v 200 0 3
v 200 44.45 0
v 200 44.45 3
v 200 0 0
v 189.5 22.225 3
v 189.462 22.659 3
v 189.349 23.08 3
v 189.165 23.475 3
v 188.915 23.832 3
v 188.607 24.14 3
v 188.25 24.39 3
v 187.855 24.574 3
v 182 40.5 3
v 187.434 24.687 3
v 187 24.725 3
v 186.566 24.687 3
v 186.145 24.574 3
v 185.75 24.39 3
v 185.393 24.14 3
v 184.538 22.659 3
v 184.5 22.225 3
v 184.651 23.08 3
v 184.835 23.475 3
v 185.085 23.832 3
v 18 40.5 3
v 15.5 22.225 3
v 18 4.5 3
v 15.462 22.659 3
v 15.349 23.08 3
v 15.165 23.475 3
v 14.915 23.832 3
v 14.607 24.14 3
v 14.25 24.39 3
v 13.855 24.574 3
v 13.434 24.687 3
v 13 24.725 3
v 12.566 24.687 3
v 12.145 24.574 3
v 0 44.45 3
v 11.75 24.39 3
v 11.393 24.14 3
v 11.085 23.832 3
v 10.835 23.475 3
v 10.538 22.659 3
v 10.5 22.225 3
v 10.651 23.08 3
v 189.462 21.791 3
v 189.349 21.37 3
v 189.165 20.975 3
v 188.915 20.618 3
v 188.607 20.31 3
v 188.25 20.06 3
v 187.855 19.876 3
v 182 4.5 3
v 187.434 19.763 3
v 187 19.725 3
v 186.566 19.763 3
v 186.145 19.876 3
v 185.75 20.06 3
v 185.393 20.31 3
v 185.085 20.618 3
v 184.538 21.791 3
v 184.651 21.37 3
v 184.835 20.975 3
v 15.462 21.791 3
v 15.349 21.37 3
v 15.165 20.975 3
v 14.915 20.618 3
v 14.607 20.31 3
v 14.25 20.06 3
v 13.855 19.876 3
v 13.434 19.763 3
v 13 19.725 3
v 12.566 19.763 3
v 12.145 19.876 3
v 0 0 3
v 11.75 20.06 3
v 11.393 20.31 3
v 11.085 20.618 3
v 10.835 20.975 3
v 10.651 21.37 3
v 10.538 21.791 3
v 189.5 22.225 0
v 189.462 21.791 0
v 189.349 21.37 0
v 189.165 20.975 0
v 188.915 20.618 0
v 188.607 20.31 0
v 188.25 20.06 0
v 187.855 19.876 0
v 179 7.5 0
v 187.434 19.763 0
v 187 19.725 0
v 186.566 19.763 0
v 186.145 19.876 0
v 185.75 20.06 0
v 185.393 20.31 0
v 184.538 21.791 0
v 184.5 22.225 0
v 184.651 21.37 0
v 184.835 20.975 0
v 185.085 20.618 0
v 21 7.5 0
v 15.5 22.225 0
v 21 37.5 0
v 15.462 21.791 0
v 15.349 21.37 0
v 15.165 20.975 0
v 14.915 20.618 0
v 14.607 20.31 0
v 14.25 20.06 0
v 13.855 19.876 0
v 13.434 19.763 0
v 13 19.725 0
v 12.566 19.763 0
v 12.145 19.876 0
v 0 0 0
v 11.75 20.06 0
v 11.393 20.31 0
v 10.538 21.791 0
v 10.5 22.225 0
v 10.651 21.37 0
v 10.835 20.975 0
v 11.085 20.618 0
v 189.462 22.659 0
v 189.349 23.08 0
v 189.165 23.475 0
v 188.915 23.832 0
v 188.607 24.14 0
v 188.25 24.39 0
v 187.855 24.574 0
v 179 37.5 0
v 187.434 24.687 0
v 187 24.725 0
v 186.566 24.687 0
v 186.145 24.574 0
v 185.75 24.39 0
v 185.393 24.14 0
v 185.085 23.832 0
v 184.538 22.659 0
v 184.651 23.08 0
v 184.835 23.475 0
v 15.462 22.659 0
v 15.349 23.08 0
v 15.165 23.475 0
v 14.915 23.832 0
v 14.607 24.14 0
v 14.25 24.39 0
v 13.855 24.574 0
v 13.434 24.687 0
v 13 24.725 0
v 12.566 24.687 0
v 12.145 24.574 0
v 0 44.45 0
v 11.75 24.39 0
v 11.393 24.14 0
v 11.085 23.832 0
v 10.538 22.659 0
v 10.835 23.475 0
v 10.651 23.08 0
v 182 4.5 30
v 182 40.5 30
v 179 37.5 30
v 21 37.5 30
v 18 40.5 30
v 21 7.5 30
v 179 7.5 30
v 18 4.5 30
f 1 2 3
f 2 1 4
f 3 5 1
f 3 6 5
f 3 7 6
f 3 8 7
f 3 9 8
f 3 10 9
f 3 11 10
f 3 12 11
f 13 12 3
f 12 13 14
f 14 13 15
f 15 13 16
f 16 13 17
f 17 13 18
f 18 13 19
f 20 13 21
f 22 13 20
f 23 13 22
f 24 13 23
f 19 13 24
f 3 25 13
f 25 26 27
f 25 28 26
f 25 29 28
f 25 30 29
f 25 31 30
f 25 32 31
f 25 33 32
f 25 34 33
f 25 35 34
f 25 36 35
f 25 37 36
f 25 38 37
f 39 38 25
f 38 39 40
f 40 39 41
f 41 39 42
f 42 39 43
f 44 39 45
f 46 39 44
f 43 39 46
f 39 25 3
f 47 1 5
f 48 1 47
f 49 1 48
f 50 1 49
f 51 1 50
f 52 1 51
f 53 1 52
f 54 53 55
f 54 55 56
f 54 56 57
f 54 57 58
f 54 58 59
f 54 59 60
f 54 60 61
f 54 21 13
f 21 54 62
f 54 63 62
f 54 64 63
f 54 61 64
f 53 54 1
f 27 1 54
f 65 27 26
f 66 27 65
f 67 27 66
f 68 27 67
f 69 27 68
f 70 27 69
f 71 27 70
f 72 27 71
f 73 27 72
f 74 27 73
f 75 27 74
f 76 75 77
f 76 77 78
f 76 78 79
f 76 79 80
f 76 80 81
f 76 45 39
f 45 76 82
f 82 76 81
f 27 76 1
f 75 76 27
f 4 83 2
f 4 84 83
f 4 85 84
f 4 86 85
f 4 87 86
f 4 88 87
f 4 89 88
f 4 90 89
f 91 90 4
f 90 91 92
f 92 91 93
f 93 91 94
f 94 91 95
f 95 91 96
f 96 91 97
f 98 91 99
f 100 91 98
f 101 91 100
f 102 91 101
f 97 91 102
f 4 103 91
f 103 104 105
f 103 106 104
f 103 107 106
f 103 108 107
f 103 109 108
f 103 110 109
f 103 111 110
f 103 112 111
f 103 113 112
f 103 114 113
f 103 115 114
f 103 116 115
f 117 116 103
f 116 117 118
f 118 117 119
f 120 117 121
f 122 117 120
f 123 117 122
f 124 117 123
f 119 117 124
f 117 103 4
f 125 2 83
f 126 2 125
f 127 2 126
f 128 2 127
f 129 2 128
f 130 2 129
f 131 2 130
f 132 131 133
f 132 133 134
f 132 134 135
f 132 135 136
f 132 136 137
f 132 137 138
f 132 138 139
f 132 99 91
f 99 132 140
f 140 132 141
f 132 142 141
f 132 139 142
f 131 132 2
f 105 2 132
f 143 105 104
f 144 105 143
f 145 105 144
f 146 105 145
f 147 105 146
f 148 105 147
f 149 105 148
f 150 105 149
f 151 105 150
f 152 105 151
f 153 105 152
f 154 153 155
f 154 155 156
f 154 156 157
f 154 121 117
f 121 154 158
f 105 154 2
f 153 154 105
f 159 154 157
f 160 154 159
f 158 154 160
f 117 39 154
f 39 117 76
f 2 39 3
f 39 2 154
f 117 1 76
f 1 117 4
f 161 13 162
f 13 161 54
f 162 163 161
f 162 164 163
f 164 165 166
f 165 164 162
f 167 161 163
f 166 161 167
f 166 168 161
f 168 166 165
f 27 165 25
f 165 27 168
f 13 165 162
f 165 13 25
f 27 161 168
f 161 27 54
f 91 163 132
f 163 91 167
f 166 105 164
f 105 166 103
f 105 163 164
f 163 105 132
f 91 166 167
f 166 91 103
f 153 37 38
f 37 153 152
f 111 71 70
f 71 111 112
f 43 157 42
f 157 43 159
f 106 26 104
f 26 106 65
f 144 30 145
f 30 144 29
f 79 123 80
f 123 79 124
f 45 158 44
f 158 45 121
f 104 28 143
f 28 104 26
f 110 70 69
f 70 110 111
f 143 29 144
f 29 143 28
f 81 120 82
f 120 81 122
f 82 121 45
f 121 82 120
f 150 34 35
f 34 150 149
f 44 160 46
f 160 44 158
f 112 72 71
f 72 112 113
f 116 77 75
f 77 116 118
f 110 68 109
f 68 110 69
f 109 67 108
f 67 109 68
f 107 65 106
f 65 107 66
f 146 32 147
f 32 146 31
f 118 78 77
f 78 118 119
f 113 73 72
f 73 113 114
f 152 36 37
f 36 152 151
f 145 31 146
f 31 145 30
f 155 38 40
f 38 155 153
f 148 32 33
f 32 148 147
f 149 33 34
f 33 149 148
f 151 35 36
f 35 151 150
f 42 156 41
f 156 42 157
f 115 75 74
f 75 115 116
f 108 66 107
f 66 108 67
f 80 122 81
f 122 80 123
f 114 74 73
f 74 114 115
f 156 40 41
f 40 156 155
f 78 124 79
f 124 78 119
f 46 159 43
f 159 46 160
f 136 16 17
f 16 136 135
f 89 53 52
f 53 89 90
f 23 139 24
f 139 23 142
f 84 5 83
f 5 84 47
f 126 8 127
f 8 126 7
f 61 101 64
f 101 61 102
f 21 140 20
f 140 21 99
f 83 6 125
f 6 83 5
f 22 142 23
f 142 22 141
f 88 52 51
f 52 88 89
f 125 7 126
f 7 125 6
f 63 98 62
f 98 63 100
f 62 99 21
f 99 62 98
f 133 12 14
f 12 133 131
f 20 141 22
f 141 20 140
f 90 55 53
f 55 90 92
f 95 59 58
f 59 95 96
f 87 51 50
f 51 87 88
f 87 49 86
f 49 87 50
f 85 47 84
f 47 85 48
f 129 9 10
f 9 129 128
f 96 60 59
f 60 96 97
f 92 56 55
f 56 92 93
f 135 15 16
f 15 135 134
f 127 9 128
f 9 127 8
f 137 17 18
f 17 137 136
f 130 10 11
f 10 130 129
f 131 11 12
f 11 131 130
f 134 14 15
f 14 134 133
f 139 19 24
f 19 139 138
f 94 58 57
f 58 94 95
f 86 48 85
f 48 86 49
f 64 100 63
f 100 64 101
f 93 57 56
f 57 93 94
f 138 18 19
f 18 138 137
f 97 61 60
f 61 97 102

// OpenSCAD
// Rack for TP-Link 8 ports Gigabit Ethernet Hub

one_u=44.45;

rack_width=200;
rack_height=1*one_u;


//(158 × 101 × 25 mm)
device_width=158; //?
device_height=25; //?
device_depth=101; //? this is only used to make a hole

support_depth=30;



difference(){
difference(){

union(){
//faceplate
cube([rack_width,rack_height,3]);
    
//device support    
translate([(rack_width-device_width)/2-3,15/2-3,0]) cube([device_width+6,support_depth+6,support_depth]);
}

//device face/hole
translate([(rack_width-device_width)/2,15/2,-2]) cube([device_width,support_depth,device_depth]);
}


$fn=36;

////holes (4 holes, 1 and 3 in 1U)
//union(){
//translate([13,6,-1]) cylinder(10,2.5,2.5);
//
//translate([13,45-6,-1]) cylinder(10,2.5,2.5);
//
//translate([200-13,6,-1]) cylinder(10,2.5,2.5);
//
//translate([200-13,45-6,-1]) cylinder(10,2.5,2.5);
//}


//holes (2 holes, hole 2 only in 1U)
union(){
translate([13,rack_height/2,-1]) cylinder(10,2.5,2.5);

translate([rack_width-13,rack_height/2,-1]) cylinder(10,2.5,2.5);
}



}
